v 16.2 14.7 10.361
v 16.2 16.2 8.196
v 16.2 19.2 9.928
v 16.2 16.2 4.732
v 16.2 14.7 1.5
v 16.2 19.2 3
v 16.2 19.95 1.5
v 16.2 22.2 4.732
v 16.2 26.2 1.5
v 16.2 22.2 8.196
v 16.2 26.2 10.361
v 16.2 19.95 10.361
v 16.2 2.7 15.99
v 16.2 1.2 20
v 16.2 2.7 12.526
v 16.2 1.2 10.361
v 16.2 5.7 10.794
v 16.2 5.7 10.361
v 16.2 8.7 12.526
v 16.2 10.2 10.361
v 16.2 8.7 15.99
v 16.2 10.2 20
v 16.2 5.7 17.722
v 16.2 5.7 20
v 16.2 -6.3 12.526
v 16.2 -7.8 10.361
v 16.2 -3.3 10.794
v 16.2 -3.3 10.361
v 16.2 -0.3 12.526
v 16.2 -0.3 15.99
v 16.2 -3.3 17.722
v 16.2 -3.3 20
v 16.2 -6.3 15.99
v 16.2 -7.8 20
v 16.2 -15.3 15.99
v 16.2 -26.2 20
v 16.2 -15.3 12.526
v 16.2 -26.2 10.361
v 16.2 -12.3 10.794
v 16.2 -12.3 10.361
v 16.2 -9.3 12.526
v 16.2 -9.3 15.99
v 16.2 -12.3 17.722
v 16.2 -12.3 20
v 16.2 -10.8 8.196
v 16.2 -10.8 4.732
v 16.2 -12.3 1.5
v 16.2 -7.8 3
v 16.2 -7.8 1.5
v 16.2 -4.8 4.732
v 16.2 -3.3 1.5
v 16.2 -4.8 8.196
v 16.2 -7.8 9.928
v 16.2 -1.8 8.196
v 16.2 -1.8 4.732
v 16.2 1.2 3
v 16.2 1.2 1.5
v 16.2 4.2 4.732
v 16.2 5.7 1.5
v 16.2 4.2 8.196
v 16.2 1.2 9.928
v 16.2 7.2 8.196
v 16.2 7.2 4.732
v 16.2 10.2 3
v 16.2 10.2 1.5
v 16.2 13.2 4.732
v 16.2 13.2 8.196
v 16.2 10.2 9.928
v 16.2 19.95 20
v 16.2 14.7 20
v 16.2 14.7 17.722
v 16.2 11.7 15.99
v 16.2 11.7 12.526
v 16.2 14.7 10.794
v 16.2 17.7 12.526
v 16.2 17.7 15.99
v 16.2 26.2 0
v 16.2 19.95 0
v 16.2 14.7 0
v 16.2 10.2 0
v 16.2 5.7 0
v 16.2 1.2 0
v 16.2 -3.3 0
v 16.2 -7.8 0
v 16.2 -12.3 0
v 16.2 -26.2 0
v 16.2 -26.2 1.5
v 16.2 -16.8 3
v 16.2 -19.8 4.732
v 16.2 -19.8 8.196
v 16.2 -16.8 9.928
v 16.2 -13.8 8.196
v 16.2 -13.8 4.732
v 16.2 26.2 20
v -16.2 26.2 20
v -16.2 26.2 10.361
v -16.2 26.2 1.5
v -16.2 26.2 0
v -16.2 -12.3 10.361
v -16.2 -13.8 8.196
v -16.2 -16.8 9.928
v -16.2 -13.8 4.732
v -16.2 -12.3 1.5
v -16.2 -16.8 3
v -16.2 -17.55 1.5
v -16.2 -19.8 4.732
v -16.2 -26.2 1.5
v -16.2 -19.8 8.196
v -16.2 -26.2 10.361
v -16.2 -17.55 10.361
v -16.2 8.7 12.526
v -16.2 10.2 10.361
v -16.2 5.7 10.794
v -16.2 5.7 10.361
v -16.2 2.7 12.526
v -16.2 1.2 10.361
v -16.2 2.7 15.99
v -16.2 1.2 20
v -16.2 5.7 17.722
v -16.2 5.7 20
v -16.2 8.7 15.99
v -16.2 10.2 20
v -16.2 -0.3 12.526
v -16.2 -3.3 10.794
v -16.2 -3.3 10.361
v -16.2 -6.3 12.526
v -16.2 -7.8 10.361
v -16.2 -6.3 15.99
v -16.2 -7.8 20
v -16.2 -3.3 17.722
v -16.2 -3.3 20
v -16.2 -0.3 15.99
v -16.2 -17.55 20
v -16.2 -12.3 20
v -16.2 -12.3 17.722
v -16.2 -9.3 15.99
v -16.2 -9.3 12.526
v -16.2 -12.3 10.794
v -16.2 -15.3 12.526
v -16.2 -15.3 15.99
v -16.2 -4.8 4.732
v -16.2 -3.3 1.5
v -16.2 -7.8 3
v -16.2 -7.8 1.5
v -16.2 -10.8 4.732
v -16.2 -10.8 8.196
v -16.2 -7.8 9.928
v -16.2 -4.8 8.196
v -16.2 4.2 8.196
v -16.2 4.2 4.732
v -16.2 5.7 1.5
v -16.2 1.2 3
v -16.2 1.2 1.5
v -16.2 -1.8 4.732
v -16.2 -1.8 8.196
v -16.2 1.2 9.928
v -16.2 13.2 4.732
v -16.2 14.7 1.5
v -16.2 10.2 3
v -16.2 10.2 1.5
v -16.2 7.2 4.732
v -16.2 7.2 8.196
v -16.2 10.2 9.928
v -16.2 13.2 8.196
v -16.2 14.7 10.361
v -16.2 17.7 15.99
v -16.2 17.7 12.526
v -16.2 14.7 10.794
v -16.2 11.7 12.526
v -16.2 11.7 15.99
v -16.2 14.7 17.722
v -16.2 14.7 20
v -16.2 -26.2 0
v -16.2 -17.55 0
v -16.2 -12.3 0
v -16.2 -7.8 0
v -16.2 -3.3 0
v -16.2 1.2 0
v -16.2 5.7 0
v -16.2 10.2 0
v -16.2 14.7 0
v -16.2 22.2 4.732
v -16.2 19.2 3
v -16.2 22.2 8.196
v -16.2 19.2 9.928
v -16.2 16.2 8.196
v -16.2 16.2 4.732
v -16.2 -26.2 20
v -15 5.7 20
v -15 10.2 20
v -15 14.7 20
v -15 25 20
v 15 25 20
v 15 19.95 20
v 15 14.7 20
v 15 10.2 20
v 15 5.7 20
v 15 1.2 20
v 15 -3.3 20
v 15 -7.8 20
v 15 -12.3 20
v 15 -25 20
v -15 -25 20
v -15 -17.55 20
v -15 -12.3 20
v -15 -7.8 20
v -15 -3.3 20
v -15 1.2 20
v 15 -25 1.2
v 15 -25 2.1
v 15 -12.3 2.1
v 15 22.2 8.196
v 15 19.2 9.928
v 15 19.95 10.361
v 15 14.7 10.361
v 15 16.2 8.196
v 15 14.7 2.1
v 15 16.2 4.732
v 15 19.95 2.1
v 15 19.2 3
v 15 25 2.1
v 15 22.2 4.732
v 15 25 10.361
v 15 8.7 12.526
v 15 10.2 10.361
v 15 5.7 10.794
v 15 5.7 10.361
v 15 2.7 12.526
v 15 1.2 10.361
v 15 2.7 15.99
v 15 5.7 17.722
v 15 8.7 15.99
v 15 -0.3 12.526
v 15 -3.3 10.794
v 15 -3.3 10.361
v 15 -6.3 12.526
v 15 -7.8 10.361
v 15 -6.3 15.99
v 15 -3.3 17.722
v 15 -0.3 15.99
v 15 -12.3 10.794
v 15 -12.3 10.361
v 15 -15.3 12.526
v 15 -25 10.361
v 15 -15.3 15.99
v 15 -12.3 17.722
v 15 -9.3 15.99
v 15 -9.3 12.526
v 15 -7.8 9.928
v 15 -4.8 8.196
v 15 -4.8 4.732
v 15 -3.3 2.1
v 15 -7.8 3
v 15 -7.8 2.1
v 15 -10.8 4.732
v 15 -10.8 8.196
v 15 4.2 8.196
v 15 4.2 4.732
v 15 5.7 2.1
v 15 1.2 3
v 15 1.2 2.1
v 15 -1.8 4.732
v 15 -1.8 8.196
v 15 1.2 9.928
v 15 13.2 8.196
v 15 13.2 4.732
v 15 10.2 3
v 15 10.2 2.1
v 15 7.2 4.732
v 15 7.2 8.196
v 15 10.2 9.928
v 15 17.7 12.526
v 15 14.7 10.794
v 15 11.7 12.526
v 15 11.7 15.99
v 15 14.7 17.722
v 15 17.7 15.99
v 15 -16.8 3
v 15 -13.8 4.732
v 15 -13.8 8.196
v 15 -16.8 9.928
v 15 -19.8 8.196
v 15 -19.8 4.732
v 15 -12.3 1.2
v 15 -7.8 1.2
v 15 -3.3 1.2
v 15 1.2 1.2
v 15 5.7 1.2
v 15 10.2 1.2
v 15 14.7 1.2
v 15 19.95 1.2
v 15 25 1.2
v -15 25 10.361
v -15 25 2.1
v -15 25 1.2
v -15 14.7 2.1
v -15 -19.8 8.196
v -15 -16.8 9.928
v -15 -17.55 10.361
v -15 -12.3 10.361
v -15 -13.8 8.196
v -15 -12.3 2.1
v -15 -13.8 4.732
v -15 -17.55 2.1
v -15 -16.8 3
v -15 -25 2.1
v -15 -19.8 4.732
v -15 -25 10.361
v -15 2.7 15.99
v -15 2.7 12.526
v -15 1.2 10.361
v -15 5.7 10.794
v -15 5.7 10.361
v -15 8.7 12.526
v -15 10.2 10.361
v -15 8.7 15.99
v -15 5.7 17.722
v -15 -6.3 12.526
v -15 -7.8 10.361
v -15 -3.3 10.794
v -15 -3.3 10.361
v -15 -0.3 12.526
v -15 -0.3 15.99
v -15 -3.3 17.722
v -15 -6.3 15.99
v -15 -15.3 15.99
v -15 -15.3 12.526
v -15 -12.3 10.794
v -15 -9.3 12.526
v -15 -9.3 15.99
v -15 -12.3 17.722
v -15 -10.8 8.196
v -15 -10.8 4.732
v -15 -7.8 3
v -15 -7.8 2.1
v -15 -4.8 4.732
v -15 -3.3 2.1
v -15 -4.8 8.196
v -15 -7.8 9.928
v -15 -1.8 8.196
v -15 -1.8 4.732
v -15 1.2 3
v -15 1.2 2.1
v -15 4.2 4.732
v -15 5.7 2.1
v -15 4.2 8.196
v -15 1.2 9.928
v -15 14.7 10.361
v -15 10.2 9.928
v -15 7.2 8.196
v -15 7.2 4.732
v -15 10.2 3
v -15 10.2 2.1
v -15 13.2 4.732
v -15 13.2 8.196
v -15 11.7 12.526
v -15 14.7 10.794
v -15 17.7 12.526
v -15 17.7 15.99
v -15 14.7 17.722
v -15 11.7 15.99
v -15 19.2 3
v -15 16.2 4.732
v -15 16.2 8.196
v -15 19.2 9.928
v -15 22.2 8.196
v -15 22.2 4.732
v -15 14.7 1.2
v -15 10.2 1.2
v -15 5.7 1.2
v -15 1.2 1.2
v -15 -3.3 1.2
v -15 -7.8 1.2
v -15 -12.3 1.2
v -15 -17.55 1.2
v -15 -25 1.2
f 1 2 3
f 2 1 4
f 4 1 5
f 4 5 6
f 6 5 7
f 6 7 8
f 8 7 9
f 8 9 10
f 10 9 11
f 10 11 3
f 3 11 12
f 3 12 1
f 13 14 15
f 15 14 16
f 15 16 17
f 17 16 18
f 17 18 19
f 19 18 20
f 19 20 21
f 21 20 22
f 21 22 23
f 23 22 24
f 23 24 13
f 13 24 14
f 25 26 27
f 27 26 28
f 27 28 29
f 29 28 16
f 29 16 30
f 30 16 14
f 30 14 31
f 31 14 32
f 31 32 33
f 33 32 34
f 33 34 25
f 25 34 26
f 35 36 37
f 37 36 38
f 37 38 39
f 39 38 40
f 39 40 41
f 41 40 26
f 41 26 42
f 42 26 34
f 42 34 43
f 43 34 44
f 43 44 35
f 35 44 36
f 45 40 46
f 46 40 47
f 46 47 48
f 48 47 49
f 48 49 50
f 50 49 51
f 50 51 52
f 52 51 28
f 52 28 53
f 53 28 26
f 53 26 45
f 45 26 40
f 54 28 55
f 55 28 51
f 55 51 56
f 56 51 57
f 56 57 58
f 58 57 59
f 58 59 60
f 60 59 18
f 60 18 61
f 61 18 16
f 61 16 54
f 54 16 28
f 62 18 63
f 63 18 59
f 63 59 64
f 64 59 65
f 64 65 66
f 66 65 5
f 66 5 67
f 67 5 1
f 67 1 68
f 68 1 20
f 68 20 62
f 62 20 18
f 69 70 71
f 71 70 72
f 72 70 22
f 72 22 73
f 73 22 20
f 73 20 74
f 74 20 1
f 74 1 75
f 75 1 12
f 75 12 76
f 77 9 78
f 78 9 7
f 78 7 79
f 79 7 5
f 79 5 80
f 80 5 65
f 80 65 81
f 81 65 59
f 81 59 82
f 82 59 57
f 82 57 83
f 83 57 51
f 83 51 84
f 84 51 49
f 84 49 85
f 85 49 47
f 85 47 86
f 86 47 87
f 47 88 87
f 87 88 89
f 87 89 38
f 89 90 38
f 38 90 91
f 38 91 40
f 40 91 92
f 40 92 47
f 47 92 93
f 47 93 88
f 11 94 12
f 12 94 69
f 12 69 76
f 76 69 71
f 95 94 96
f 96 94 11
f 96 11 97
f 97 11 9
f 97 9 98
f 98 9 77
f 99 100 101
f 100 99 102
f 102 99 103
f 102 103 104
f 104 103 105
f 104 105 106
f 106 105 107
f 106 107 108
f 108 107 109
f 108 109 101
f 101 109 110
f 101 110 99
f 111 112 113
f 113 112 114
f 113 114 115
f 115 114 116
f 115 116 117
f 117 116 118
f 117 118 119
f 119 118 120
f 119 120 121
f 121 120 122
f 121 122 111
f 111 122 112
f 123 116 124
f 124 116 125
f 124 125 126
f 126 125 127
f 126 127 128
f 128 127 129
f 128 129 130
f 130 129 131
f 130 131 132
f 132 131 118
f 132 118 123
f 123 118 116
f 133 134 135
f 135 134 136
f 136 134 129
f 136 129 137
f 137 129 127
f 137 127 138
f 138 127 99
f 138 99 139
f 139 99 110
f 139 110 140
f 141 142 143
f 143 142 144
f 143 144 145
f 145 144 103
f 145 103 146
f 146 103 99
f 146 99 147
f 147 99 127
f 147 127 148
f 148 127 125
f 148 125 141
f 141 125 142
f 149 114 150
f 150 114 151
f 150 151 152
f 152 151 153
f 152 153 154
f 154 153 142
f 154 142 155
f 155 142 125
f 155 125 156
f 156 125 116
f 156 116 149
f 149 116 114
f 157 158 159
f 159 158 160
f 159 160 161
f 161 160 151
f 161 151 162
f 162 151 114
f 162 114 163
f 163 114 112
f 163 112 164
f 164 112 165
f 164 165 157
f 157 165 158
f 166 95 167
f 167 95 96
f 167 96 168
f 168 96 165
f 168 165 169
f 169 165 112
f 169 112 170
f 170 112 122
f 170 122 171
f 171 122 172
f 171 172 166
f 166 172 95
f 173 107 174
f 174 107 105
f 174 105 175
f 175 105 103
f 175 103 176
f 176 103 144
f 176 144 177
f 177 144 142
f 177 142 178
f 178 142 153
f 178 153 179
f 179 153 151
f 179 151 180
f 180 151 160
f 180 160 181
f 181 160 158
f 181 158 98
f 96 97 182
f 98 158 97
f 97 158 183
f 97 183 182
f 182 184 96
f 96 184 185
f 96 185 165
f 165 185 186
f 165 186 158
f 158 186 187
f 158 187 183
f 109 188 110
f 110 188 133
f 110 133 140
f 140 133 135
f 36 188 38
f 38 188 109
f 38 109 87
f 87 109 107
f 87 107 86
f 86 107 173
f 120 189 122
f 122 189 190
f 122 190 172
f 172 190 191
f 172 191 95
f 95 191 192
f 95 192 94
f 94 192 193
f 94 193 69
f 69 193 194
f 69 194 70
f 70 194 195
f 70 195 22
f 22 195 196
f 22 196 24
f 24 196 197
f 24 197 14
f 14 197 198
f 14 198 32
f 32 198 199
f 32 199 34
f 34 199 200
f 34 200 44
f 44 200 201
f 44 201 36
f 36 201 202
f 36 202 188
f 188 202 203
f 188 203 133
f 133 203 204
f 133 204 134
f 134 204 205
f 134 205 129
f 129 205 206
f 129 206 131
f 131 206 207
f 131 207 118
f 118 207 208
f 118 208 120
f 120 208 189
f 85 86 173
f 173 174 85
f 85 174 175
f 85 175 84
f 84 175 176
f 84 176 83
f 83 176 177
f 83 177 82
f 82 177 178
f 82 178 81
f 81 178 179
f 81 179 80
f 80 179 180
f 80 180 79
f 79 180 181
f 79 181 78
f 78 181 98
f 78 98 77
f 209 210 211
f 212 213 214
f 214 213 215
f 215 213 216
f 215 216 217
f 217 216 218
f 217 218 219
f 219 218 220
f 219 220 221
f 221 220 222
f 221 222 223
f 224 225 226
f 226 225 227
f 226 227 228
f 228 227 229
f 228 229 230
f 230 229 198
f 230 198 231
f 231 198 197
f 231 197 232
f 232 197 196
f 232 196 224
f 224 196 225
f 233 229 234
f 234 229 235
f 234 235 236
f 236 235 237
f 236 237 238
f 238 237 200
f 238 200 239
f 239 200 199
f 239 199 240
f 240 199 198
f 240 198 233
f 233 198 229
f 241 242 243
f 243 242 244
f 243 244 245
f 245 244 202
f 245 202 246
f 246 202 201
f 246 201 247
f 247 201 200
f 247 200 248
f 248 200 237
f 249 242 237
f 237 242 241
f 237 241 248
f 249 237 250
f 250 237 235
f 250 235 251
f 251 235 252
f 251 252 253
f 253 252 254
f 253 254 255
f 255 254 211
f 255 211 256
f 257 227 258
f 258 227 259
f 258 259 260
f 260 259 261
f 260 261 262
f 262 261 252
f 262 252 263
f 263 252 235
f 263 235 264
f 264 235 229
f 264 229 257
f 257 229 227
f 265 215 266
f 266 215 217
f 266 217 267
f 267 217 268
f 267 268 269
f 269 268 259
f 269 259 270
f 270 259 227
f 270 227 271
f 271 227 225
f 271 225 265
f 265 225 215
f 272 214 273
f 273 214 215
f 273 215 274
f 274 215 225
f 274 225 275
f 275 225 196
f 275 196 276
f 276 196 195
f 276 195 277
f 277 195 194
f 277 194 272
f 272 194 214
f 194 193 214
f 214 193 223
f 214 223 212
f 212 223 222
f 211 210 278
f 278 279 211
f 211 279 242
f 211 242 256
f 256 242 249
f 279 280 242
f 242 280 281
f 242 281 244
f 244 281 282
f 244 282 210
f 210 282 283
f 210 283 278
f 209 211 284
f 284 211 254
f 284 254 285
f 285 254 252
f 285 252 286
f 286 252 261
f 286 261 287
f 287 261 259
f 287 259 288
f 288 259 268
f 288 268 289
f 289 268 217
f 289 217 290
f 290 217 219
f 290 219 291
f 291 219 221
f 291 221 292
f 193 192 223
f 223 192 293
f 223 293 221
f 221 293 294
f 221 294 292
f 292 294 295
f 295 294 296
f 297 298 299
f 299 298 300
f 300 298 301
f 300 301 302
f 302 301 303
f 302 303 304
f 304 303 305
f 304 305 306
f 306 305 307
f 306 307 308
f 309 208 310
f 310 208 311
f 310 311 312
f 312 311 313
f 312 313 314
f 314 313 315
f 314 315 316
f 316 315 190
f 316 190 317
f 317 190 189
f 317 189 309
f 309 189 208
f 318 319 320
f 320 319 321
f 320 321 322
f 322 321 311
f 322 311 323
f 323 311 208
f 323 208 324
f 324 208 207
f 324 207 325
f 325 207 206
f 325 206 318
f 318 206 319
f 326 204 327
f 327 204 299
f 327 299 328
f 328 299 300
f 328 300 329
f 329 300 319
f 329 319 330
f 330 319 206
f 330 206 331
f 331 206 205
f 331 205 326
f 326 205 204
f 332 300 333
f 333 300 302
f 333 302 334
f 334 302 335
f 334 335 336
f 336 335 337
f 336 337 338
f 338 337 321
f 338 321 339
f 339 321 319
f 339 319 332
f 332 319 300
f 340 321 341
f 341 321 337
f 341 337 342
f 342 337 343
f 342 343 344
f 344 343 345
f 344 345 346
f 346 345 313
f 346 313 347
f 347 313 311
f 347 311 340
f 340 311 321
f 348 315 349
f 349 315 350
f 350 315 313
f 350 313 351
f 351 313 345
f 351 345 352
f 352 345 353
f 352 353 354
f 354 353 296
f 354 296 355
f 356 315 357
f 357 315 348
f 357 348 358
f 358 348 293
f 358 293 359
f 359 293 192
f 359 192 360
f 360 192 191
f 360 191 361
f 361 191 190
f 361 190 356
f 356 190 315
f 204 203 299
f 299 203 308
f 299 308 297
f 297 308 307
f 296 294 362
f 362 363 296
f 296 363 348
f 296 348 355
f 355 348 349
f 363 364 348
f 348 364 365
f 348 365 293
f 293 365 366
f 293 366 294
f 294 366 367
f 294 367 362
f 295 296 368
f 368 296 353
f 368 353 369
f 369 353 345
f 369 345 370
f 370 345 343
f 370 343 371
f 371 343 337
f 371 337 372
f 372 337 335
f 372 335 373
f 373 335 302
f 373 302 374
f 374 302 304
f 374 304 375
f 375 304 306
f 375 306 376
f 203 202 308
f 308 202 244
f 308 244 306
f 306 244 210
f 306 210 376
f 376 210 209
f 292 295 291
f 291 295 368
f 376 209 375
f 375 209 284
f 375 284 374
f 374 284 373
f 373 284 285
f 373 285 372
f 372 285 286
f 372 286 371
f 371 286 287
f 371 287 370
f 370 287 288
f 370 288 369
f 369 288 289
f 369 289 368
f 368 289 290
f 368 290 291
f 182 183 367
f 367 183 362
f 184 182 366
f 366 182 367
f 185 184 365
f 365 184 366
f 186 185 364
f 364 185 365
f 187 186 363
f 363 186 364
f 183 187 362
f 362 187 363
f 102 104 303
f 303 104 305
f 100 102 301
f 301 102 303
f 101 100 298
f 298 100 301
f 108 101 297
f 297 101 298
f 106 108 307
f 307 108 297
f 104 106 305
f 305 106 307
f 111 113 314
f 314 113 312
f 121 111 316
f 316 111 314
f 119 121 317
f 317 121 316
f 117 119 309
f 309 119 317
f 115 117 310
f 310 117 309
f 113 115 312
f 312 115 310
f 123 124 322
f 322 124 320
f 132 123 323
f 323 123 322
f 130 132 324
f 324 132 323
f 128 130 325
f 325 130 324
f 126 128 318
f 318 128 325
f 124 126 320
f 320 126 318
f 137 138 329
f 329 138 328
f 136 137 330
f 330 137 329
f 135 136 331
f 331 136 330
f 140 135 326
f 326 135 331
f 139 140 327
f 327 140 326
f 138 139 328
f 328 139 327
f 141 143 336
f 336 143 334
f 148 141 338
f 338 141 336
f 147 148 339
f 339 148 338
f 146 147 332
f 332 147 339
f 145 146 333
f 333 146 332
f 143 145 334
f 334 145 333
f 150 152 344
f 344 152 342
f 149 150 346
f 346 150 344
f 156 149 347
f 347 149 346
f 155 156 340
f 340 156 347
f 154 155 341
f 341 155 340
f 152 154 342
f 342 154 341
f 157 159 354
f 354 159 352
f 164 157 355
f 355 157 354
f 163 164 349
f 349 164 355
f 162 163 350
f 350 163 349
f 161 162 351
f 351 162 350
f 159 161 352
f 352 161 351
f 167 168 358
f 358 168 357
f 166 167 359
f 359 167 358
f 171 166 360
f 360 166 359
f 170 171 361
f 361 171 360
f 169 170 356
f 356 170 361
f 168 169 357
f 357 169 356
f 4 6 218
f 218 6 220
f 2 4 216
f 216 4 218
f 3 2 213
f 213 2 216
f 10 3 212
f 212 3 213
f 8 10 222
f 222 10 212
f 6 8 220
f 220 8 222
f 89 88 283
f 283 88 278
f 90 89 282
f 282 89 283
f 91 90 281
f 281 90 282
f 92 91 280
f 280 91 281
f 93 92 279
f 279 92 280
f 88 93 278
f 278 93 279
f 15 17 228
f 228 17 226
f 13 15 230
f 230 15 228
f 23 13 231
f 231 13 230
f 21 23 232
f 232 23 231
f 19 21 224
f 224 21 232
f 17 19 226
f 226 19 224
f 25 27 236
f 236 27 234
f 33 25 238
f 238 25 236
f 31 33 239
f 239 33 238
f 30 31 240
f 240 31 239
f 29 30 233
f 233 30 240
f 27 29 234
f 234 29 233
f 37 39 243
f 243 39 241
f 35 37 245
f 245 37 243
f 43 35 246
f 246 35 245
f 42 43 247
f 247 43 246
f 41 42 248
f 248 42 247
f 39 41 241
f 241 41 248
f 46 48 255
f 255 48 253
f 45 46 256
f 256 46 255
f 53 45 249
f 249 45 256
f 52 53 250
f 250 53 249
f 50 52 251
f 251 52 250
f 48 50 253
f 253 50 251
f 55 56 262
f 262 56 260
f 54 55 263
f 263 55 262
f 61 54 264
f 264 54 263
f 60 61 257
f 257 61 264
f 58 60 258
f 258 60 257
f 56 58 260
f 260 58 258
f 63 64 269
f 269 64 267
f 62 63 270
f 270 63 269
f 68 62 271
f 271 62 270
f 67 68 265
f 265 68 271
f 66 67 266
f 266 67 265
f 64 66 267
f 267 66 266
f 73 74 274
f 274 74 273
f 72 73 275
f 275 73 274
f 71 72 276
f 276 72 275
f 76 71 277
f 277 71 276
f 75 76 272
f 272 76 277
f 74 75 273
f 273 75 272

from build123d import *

# Parameters (mm, degrees)
SKETCH1_W           = 32.4
SKETCH1_H           = 52.4
BOSS_EXTRUDE1_DEPTH = 20
SHELL1_T            = -1.2
CUT_EXTRUDE1_DEPTH  = 47.219043694


with BuildPart() as part:
    # Sketch1 → Boss-Extrude1 (new body)
    with BuildSketch(Plane.XY):
        Rectangle(SKETCH1_W, SKETCH1_H)
    extrude(amount=BOSS_EXTRUDE1_DEPTH)

    # Shell1
    shell1_openings = [part.faces().sort_by_distance(p)[0] for p in [
        (0, 0, 20),
    ]]
    offset(amount=SHELL1_T, openings=shell1_openings, kind=Kind.INTERSECTION)

    # Sketch2 → Cut-Extrude1 (cut, through all)
    with BuildSketch(Plane(origin=(16.2, 0, 0), x_dir=(0, 0, -1), z_dir=(1, 0, 0))):
        Polygon((-3, 19.2), (-4.732050808, 22.2), (-8.196152423, 22.2), (-9.92820323, 19.2), (-8.196152423, 16.2), (-4.732050808, 16.2), align=None)
        Polygon((-3, 10.2), (-4.732050808, 13.2), (-8.196152423, 13.2), (-9.92820323, 10.2), (-8.196152423, 7.2), (-4.732050808, 7.2), align=None)
        Polygon((-10.794228634, 14.7), (-12.526279442, 17.7), (-15.990381057, 17.7), (-17.722431864, 14.7), (-15.990381057, 11.7), (-12.526279442, 11.7), align=None)
        Polygon((-3, 1.2), (-4.732050808, 4.2), (-8.196152423, 4.2), (-9.92820323, 1.2), (-8.196152423, -1.8), (-4.732050808, -1.8), align=None)
        Polygon((-3, -7.8), (-4.732050808, -4.8), (-8.196152423, -4.8), (-9.92820323, -7.8), (-8.196152423, -10.8), (-4.732050808, -10.8), align=None)
        Polygon((-3, -16.8), (-4.732050808, -13.8), (-8.196152423, -13.8), (-9.92820323, -16.8), (-8.196152423, -19.8), (-4.732050808, -19.8), align=None)
        Polygon((-10.794228634, 5.7), (-12.526279442, 8.7), (-15.990381057, 8.7), (-17.722431864, 5.7), (-15.990381057, 2.7), (-12.526279442, 2.7), align=None)
        Polygon((-10.794228634, -3.3), (-12.526279442, -0.3), (-15.990381057, -0.3), (-17.722431864, -3.3), (-15.990381057, -6.3), (-12.526279442, -6.3), align=None)
        Polygon((-10.794228634, -12.3), (-12.526279442, -9.3), (-15.990381057, -9.3), (-17.722431864, -12.3), (-15.990381057, -15.3), (-12.526279442, -15.3), align=None)
    extrude(amount=-CUT_EXTRUDE1_DEPTH, mode=Mode.SUBTRACT)


solid = part.part
